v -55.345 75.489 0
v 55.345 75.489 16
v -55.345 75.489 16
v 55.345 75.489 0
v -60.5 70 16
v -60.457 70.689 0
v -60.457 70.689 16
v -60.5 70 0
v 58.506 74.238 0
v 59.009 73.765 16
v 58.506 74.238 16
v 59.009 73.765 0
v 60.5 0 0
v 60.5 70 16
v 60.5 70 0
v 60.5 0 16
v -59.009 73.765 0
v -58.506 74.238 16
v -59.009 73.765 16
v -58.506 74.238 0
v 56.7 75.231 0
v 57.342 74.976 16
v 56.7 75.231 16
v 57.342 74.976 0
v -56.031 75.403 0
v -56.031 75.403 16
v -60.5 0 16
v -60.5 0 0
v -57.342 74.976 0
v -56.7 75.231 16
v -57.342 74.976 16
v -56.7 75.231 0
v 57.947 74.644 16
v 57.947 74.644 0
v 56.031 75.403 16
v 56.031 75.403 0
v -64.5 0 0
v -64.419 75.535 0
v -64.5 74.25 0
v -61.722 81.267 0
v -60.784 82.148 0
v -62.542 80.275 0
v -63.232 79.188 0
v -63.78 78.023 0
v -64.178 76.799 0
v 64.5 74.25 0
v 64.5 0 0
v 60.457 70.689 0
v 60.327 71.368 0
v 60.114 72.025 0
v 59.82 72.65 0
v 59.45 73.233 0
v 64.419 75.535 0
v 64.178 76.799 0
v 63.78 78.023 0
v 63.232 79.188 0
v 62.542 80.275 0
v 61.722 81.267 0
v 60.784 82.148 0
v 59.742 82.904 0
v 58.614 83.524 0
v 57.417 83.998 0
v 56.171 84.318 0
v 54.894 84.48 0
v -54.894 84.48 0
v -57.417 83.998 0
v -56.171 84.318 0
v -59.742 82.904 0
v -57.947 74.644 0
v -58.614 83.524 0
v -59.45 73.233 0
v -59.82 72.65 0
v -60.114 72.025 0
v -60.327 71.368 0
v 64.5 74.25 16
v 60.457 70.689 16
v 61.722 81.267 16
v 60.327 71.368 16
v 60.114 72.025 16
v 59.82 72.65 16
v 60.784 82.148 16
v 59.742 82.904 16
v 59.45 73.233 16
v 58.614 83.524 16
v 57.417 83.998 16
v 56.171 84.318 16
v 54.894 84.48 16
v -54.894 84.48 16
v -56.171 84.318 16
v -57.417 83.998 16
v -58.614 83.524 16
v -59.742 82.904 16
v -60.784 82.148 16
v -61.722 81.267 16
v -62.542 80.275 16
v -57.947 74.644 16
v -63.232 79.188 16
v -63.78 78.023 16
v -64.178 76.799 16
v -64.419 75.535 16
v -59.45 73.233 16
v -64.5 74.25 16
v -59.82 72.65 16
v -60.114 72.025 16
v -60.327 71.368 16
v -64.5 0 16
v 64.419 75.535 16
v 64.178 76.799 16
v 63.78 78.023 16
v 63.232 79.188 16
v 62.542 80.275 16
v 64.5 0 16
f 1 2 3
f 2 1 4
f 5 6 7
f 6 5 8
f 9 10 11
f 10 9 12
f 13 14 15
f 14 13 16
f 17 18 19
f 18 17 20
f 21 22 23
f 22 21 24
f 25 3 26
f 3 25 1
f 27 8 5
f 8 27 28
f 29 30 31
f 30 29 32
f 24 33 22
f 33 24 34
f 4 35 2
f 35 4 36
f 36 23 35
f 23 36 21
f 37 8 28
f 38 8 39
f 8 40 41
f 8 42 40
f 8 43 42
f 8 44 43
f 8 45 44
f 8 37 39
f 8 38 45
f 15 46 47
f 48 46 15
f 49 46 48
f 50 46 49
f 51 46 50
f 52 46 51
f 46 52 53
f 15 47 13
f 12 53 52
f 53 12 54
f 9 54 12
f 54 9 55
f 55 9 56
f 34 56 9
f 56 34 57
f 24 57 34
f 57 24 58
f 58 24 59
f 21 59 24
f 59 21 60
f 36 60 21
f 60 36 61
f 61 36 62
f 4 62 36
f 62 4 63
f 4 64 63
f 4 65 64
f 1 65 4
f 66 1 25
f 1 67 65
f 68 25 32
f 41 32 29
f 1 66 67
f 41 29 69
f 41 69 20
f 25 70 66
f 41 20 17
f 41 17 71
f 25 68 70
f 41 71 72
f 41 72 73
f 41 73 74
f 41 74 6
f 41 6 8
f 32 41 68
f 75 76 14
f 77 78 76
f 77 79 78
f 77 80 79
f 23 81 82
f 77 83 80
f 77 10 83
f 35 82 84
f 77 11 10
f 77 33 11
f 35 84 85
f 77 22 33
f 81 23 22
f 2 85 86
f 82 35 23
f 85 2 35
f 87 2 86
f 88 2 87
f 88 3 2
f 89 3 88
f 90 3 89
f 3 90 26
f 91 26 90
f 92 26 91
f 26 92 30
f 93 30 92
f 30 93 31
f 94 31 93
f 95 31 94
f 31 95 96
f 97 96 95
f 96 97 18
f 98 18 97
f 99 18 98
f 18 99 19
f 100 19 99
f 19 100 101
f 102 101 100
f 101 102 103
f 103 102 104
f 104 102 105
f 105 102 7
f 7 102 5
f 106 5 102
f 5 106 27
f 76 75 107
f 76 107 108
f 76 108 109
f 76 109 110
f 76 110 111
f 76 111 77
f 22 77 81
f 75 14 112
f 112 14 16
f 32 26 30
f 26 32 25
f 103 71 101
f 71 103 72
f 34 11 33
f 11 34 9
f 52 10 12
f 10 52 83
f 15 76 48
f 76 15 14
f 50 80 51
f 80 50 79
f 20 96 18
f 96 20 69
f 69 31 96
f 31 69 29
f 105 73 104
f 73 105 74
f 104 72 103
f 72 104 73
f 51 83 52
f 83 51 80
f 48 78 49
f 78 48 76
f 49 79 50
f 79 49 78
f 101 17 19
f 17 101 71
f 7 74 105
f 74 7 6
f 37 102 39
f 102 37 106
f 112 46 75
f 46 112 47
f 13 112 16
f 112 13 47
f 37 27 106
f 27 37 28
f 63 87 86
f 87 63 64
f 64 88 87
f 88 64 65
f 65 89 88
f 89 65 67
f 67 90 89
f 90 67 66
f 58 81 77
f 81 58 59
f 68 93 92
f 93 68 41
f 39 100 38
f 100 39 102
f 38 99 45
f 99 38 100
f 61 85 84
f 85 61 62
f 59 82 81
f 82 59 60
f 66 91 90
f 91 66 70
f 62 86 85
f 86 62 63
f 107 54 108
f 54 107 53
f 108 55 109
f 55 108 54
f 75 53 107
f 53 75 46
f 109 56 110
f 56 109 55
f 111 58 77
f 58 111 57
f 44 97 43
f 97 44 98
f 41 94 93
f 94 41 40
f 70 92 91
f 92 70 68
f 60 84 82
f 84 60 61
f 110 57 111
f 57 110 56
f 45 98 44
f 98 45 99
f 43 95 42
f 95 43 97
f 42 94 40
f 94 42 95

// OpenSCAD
$fn = 50;


difference() {
	union() {
		hull() {
			translate(v = [-54.2500000000, 74.2500000000, 0]) {
				cylinder(h = 16.0000000000, r = 10.2500000000);
			}
			translate(v = [54.2500000000, 74.2500000000, 0]) {
				cylinder(h = 16.0000000000, r = 10.2500000000);
			}
			translate(v = [-54.2500000000, -74.2500000000, 0]) {
				cylinder(h = 16.0000000000, r = 10.2500000000);
			}
			translate(v = [54.2500000000, -74.2500000000, 0]) {
				cylinder(h = 16.0000000000, r = 10.2500000000);
			}
		}
	}
	union() {
		hull() {
			translate(v = [-55.0000000000, 70.0000000000, 0]) {
				cylinder(h = 16.0000000000, r = 5.5000000000);
			}
			translate(v = [55.0000000000, 70.0000000000, 0]) {
				cylinder(h = 16.0000000000, r = 5.5000000000);
			}
			translate(v = [-55.0000000000, -70.0000000000, 0]) {
				cylinder(h = 16.0000000000, r = 5.5000000000);
			}
			translate(v = [55.0000000000, -70.0000000000, 0]) {
				cylinder(h = 16.0000000000, r = 5.5000000000);
			}
		}
		#translate(v = [-64.5000000000, -169.0000000000, 0]) {
			cube(size = [129.0000000000, 169.0000000000, 16.0000000000]);
		}
	}
}
